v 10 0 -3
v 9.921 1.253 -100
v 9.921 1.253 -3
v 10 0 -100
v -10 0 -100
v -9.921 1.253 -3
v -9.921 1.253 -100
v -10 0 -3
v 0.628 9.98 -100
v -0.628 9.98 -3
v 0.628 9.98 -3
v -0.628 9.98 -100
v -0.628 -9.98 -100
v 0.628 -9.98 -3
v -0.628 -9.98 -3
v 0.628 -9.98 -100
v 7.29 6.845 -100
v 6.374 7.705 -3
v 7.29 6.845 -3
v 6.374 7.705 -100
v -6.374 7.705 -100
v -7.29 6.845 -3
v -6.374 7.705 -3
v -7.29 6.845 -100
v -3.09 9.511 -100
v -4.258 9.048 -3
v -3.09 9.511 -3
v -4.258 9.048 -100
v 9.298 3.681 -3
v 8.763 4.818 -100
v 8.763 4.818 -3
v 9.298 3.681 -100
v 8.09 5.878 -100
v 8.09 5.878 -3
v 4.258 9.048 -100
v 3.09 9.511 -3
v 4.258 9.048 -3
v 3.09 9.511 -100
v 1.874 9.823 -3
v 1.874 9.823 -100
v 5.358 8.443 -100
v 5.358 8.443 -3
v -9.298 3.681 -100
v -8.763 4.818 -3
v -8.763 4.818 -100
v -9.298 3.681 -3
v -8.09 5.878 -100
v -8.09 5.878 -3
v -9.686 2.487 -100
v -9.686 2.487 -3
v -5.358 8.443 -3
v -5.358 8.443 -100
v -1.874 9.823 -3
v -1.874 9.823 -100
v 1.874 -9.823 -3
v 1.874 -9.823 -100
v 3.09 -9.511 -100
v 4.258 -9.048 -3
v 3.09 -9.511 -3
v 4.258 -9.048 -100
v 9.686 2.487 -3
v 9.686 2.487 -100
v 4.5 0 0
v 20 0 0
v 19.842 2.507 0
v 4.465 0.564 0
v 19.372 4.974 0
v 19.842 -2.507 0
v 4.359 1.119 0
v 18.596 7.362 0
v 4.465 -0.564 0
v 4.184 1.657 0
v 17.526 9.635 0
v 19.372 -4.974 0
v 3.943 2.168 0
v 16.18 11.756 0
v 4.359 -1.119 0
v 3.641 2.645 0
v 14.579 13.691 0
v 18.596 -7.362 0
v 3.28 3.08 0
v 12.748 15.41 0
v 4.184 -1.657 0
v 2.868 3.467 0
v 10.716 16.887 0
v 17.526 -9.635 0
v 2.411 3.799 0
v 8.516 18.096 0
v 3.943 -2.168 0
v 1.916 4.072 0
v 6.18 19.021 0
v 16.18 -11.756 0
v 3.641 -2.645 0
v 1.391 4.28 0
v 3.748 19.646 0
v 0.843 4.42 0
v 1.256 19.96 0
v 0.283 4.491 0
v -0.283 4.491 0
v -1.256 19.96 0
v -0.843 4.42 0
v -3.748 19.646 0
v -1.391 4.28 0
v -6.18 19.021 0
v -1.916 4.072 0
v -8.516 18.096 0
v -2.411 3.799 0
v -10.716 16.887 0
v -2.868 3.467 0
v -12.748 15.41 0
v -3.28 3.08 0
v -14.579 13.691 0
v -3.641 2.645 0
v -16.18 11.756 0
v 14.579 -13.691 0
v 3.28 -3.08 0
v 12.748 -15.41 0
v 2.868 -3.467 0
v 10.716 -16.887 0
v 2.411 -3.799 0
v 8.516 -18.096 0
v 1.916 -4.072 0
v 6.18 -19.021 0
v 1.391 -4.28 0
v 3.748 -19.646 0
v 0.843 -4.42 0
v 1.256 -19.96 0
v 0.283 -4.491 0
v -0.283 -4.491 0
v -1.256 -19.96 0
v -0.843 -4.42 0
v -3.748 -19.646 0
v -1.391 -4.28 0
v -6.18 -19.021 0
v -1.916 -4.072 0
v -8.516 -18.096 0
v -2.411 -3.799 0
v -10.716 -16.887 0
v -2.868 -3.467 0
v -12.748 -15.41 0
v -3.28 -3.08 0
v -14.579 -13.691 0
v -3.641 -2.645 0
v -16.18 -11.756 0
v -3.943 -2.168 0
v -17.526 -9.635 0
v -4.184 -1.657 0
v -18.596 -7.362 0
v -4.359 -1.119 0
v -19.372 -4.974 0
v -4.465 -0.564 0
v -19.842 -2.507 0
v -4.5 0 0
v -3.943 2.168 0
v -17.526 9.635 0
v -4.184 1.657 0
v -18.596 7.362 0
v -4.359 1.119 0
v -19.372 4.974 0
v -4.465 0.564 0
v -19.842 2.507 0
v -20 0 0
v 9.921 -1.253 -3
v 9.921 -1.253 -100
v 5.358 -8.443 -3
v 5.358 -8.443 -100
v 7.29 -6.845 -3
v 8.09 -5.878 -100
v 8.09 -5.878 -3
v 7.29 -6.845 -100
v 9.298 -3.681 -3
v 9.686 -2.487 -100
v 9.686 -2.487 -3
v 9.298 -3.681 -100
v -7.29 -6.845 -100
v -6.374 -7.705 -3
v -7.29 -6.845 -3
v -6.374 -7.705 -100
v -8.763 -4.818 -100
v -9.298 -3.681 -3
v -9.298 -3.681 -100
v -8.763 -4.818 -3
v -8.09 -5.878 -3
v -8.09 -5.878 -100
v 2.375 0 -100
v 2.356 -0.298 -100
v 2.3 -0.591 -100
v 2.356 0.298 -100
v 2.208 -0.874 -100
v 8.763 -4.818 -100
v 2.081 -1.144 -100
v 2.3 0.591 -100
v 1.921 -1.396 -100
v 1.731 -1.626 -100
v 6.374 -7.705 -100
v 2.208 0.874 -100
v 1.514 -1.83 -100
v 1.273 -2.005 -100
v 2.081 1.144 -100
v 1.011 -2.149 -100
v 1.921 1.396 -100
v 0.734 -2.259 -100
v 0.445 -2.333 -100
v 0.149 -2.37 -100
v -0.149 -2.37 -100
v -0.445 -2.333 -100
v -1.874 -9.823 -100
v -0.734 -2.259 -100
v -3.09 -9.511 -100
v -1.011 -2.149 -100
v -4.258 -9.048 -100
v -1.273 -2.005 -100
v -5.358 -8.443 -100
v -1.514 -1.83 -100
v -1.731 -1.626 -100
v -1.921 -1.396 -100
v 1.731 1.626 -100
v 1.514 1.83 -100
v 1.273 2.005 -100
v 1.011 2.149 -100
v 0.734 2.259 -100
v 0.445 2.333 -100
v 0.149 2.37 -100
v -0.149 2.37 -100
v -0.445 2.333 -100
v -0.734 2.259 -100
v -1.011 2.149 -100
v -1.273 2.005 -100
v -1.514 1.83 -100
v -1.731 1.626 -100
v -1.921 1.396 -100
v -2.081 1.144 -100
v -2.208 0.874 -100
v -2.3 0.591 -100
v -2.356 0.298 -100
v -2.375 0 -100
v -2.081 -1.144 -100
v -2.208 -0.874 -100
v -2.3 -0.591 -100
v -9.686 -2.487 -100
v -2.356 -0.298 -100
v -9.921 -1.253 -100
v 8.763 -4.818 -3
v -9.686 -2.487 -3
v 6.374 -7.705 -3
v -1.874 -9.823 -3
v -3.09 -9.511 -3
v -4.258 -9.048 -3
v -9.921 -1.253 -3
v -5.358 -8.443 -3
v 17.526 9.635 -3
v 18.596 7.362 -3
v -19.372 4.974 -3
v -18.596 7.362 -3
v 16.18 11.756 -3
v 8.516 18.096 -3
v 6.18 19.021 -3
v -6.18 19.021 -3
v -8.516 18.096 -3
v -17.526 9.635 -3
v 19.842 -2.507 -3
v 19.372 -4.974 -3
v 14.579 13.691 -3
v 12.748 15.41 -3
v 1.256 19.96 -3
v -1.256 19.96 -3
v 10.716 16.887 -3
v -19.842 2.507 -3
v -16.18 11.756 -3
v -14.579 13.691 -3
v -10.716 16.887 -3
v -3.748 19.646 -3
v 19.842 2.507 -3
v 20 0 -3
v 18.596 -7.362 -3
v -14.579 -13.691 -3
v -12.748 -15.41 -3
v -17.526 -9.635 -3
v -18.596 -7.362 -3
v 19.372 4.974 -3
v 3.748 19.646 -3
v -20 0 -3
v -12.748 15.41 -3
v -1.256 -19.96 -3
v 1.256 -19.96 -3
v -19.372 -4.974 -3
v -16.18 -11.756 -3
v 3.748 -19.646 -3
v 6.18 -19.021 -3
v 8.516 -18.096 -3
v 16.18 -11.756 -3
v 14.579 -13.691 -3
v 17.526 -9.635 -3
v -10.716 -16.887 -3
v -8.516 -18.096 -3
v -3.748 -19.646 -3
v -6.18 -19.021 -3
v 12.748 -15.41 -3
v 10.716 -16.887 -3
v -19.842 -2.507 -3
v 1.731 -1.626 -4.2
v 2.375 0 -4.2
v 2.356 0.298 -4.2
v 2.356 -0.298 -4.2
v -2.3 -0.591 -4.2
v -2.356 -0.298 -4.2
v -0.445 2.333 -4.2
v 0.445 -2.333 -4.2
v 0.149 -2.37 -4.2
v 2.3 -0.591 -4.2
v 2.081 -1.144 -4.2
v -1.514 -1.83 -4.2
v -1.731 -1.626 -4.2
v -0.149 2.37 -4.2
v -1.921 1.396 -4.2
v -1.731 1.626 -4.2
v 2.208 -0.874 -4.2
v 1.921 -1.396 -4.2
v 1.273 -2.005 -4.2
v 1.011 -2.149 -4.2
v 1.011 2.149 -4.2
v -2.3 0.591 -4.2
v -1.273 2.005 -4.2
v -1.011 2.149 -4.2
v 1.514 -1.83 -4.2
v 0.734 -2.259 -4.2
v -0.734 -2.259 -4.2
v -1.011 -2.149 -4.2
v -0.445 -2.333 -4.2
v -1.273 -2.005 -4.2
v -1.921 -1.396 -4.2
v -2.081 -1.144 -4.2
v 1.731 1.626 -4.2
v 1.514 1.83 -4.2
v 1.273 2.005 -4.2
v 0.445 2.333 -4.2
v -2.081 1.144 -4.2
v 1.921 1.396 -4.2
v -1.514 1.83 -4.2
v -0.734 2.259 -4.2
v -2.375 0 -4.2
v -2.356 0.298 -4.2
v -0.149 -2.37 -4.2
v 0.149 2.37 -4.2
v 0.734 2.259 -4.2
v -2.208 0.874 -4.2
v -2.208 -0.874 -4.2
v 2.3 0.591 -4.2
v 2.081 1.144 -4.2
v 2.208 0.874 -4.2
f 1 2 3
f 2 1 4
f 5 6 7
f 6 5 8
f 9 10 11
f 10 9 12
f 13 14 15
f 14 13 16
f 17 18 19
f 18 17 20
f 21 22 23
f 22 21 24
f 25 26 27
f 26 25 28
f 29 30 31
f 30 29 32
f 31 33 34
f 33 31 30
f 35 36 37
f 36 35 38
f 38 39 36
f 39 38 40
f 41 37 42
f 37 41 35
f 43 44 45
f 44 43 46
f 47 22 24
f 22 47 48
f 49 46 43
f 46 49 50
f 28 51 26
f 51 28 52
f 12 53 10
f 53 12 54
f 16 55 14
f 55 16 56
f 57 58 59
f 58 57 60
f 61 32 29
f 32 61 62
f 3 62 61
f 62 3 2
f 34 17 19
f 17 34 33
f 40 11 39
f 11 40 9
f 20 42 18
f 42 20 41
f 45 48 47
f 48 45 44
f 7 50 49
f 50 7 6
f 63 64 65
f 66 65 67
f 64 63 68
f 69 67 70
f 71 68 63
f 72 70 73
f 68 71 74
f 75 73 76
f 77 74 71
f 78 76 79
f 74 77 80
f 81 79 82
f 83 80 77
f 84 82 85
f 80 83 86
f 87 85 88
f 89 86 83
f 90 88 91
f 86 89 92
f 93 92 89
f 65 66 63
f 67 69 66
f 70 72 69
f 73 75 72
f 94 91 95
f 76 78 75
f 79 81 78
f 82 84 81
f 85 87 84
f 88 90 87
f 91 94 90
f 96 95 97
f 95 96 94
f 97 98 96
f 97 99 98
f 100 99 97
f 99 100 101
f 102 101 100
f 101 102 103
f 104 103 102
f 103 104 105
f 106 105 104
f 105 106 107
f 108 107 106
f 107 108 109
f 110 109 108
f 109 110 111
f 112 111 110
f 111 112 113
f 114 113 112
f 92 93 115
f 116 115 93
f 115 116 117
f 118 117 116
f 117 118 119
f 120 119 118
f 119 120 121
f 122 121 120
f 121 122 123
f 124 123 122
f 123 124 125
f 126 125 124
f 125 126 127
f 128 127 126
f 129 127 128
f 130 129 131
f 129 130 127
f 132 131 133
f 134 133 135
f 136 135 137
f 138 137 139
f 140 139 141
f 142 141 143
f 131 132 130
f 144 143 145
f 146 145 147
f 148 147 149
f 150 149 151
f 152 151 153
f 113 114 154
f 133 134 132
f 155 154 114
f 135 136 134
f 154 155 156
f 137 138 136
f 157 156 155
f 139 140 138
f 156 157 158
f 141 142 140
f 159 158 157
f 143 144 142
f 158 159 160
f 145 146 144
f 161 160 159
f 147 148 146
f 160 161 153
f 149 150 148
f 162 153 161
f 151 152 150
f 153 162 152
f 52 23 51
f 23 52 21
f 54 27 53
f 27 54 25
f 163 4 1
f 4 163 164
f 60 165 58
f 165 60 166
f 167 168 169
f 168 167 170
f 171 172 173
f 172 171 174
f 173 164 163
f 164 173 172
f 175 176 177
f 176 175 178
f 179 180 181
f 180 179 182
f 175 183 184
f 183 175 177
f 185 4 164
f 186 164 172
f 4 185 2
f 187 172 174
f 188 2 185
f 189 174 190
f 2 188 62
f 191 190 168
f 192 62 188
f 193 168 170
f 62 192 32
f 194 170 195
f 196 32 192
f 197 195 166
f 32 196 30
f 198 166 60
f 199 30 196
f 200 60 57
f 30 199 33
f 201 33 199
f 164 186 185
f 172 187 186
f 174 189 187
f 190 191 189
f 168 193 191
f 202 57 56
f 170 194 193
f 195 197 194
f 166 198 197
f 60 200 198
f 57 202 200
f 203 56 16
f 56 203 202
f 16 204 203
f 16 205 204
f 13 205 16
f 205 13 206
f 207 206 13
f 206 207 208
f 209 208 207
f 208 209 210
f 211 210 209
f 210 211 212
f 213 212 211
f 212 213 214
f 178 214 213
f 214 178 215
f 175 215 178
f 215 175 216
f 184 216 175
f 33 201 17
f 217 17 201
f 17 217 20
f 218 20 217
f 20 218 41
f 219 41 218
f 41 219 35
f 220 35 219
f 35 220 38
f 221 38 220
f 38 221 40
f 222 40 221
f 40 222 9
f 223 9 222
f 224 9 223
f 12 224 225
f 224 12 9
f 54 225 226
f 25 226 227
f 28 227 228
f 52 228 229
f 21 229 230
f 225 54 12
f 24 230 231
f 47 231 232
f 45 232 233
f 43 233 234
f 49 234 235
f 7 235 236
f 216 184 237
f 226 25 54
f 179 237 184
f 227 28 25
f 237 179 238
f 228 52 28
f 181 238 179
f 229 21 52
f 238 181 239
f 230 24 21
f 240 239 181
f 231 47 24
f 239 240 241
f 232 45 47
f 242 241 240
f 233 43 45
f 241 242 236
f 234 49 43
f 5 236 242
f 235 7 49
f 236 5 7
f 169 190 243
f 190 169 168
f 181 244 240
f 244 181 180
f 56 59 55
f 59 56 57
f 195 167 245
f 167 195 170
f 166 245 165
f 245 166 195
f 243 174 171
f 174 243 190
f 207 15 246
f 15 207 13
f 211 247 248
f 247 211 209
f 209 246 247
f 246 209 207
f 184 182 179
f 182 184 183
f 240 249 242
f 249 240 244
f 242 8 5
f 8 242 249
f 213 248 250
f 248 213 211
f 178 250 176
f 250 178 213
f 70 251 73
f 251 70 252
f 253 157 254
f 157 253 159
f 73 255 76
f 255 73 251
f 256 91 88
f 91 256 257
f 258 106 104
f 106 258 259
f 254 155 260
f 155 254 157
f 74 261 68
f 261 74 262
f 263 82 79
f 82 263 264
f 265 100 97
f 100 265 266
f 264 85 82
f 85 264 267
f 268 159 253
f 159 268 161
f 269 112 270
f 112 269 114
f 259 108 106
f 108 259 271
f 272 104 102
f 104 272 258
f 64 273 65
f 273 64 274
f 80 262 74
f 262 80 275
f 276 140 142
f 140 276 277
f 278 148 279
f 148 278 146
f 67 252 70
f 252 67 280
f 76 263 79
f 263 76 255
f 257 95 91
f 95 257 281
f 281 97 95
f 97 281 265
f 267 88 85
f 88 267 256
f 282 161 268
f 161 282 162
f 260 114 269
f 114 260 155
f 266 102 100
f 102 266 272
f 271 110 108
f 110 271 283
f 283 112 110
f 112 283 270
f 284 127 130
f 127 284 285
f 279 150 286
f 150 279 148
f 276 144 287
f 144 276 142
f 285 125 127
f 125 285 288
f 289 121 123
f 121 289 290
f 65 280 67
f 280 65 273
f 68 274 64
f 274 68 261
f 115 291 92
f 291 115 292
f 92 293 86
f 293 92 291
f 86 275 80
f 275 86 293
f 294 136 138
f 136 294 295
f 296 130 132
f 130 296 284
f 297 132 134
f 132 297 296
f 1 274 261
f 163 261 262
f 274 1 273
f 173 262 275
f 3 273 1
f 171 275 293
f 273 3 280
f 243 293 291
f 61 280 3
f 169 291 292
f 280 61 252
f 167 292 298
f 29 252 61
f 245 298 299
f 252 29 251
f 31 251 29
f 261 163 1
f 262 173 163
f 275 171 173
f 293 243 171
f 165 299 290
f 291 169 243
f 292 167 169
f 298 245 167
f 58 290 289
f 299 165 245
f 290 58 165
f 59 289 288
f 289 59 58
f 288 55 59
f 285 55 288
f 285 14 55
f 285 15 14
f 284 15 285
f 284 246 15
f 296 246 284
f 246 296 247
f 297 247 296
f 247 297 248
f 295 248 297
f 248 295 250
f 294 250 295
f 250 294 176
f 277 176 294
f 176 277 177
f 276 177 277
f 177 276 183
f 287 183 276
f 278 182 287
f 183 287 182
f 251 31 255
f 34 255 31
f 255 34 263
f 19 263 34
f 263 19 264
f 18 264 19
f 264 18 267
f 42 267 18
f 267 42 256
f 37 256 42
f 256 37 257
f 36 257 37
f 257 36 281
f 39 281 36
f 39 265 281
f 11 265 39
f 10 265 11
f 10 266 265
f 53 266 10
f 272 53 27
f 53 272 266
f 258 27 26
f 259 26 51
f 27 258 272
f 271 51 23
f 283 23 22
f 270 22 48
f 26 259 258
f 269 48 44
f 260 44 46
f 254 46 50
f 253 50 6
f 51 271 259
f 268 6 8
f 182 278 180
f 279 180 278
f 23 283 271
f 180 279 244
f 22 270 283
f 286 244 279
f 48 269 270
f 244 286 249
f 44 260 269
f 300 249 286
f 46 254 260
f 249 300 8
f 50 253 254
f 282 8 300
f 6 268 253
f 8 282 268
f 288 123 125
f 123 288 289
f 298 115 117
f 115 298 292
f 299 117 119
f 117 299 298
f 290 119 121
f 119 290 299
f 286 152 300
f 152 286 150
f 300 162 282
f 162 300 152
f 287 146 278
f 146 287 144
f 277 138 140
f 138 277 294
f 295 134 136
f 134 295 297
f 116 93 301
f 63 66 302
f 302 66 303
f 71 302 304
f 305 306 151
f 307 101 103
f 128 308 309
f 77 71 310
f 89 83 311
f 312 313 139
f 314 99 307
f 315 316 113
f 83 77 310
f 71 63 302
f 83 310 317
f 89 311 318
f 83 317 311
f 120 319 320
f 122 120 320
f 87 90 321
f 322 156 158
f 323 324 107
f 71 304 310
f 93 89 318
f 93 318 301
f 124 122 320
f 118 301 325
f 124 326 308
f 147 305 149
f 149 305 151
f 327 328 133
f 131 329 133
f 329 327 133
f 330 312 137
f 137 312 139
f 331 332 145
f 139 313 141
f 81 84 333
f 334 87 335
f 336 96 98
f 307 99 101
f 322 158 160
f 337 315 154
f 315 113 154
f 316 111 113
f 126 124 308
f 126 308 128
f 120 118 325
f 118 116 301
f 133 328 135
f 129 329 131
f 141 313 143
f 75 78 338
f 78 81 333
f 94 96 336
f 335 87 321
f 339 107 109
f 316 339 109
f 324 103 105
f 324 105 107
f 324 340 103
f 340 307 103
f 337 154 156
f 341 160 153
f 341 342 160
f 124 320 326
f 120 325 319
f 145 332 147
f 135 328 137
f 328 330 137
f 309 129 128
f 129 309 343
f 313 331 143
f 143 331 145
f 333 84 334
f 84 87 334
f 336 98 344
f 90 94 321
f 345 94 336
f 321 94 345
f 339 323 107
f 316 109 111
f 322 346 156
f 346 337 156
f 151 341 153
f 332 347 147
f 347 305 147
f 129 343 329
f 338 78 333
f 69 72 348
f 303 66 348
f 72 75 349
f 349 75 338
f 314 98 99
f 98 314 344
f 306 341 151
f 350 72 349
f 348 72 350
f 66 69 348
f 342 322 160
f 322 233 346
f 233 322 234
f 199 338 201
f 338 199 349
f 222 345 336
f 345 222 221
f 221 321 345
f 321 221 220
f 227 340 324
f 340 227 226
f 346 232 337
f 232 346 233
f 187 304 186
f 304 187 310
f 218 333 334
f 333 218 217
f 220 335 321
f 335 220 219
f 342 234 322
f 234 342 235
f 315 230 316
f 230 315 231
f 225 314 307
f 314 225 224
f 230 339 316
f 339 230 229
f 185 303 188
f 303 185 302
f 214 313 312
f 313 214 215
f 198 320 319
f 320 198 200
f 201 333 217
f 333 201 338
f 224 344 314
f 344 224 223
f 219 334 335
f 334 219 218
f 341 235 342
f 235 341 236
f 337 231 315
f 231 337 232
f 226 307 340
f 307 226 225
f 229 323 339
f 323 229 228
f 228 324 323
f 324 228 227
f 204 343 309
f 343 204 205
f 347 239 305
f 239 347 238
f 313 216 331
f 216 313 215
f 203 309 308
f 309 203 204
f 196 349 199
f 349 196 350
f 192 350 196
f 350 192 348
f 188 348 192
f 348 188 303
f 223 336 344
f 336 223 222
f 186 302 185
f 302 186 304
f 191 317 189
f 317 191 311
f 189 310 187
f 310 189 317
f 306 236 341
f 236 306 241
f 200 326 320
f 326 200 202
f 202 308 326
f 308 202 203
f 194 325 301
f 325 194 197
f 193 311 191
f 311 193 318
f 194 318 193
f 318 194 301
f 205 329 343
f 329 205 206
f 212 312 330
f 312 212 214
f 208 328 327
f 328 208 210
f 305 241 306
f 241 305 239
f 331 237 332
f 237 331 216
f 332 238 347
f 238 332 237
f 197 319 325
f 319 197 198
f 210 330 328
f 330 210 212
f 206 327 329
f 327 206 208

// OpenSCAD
$fn = 50;


difference() {
	union() {
		translate(v = [0, 0, -100.0000000000]) {
			cylinder(h = 100, r = 10.0000000000);
		}
		translate(v = [0, 0, -3.0000000000]) {
			cylinder(h = 3, r = 20.0000000000);
		}
	}
	union() {
		translate(v = [0, 0, 0]) {
			rotate(a = [0, 0, 0]) {
				difference() {
					union() {
						#translate(v = [0, 0, -100.0000000000]) {
							cylinder(h = 100, r = 2.2500000000);
						}
						#translate(v = [0, 0, -4.2000000000]) {
							cylinder(h = 4.2000000000, r1 = 2.3750000000, r2 = 4.5000000000);
						}
						#translate(v = [0, 0, -100.0000000000]) {
							cylinder(h = 100, r = 2.3750000000);
						}
						#translate(v = [0, 0, -100.0000000000]) {
							cylinder(h = 100, r = 2.2500000000);
						}
					}
					union();
				}
			}
		}
	}
}
